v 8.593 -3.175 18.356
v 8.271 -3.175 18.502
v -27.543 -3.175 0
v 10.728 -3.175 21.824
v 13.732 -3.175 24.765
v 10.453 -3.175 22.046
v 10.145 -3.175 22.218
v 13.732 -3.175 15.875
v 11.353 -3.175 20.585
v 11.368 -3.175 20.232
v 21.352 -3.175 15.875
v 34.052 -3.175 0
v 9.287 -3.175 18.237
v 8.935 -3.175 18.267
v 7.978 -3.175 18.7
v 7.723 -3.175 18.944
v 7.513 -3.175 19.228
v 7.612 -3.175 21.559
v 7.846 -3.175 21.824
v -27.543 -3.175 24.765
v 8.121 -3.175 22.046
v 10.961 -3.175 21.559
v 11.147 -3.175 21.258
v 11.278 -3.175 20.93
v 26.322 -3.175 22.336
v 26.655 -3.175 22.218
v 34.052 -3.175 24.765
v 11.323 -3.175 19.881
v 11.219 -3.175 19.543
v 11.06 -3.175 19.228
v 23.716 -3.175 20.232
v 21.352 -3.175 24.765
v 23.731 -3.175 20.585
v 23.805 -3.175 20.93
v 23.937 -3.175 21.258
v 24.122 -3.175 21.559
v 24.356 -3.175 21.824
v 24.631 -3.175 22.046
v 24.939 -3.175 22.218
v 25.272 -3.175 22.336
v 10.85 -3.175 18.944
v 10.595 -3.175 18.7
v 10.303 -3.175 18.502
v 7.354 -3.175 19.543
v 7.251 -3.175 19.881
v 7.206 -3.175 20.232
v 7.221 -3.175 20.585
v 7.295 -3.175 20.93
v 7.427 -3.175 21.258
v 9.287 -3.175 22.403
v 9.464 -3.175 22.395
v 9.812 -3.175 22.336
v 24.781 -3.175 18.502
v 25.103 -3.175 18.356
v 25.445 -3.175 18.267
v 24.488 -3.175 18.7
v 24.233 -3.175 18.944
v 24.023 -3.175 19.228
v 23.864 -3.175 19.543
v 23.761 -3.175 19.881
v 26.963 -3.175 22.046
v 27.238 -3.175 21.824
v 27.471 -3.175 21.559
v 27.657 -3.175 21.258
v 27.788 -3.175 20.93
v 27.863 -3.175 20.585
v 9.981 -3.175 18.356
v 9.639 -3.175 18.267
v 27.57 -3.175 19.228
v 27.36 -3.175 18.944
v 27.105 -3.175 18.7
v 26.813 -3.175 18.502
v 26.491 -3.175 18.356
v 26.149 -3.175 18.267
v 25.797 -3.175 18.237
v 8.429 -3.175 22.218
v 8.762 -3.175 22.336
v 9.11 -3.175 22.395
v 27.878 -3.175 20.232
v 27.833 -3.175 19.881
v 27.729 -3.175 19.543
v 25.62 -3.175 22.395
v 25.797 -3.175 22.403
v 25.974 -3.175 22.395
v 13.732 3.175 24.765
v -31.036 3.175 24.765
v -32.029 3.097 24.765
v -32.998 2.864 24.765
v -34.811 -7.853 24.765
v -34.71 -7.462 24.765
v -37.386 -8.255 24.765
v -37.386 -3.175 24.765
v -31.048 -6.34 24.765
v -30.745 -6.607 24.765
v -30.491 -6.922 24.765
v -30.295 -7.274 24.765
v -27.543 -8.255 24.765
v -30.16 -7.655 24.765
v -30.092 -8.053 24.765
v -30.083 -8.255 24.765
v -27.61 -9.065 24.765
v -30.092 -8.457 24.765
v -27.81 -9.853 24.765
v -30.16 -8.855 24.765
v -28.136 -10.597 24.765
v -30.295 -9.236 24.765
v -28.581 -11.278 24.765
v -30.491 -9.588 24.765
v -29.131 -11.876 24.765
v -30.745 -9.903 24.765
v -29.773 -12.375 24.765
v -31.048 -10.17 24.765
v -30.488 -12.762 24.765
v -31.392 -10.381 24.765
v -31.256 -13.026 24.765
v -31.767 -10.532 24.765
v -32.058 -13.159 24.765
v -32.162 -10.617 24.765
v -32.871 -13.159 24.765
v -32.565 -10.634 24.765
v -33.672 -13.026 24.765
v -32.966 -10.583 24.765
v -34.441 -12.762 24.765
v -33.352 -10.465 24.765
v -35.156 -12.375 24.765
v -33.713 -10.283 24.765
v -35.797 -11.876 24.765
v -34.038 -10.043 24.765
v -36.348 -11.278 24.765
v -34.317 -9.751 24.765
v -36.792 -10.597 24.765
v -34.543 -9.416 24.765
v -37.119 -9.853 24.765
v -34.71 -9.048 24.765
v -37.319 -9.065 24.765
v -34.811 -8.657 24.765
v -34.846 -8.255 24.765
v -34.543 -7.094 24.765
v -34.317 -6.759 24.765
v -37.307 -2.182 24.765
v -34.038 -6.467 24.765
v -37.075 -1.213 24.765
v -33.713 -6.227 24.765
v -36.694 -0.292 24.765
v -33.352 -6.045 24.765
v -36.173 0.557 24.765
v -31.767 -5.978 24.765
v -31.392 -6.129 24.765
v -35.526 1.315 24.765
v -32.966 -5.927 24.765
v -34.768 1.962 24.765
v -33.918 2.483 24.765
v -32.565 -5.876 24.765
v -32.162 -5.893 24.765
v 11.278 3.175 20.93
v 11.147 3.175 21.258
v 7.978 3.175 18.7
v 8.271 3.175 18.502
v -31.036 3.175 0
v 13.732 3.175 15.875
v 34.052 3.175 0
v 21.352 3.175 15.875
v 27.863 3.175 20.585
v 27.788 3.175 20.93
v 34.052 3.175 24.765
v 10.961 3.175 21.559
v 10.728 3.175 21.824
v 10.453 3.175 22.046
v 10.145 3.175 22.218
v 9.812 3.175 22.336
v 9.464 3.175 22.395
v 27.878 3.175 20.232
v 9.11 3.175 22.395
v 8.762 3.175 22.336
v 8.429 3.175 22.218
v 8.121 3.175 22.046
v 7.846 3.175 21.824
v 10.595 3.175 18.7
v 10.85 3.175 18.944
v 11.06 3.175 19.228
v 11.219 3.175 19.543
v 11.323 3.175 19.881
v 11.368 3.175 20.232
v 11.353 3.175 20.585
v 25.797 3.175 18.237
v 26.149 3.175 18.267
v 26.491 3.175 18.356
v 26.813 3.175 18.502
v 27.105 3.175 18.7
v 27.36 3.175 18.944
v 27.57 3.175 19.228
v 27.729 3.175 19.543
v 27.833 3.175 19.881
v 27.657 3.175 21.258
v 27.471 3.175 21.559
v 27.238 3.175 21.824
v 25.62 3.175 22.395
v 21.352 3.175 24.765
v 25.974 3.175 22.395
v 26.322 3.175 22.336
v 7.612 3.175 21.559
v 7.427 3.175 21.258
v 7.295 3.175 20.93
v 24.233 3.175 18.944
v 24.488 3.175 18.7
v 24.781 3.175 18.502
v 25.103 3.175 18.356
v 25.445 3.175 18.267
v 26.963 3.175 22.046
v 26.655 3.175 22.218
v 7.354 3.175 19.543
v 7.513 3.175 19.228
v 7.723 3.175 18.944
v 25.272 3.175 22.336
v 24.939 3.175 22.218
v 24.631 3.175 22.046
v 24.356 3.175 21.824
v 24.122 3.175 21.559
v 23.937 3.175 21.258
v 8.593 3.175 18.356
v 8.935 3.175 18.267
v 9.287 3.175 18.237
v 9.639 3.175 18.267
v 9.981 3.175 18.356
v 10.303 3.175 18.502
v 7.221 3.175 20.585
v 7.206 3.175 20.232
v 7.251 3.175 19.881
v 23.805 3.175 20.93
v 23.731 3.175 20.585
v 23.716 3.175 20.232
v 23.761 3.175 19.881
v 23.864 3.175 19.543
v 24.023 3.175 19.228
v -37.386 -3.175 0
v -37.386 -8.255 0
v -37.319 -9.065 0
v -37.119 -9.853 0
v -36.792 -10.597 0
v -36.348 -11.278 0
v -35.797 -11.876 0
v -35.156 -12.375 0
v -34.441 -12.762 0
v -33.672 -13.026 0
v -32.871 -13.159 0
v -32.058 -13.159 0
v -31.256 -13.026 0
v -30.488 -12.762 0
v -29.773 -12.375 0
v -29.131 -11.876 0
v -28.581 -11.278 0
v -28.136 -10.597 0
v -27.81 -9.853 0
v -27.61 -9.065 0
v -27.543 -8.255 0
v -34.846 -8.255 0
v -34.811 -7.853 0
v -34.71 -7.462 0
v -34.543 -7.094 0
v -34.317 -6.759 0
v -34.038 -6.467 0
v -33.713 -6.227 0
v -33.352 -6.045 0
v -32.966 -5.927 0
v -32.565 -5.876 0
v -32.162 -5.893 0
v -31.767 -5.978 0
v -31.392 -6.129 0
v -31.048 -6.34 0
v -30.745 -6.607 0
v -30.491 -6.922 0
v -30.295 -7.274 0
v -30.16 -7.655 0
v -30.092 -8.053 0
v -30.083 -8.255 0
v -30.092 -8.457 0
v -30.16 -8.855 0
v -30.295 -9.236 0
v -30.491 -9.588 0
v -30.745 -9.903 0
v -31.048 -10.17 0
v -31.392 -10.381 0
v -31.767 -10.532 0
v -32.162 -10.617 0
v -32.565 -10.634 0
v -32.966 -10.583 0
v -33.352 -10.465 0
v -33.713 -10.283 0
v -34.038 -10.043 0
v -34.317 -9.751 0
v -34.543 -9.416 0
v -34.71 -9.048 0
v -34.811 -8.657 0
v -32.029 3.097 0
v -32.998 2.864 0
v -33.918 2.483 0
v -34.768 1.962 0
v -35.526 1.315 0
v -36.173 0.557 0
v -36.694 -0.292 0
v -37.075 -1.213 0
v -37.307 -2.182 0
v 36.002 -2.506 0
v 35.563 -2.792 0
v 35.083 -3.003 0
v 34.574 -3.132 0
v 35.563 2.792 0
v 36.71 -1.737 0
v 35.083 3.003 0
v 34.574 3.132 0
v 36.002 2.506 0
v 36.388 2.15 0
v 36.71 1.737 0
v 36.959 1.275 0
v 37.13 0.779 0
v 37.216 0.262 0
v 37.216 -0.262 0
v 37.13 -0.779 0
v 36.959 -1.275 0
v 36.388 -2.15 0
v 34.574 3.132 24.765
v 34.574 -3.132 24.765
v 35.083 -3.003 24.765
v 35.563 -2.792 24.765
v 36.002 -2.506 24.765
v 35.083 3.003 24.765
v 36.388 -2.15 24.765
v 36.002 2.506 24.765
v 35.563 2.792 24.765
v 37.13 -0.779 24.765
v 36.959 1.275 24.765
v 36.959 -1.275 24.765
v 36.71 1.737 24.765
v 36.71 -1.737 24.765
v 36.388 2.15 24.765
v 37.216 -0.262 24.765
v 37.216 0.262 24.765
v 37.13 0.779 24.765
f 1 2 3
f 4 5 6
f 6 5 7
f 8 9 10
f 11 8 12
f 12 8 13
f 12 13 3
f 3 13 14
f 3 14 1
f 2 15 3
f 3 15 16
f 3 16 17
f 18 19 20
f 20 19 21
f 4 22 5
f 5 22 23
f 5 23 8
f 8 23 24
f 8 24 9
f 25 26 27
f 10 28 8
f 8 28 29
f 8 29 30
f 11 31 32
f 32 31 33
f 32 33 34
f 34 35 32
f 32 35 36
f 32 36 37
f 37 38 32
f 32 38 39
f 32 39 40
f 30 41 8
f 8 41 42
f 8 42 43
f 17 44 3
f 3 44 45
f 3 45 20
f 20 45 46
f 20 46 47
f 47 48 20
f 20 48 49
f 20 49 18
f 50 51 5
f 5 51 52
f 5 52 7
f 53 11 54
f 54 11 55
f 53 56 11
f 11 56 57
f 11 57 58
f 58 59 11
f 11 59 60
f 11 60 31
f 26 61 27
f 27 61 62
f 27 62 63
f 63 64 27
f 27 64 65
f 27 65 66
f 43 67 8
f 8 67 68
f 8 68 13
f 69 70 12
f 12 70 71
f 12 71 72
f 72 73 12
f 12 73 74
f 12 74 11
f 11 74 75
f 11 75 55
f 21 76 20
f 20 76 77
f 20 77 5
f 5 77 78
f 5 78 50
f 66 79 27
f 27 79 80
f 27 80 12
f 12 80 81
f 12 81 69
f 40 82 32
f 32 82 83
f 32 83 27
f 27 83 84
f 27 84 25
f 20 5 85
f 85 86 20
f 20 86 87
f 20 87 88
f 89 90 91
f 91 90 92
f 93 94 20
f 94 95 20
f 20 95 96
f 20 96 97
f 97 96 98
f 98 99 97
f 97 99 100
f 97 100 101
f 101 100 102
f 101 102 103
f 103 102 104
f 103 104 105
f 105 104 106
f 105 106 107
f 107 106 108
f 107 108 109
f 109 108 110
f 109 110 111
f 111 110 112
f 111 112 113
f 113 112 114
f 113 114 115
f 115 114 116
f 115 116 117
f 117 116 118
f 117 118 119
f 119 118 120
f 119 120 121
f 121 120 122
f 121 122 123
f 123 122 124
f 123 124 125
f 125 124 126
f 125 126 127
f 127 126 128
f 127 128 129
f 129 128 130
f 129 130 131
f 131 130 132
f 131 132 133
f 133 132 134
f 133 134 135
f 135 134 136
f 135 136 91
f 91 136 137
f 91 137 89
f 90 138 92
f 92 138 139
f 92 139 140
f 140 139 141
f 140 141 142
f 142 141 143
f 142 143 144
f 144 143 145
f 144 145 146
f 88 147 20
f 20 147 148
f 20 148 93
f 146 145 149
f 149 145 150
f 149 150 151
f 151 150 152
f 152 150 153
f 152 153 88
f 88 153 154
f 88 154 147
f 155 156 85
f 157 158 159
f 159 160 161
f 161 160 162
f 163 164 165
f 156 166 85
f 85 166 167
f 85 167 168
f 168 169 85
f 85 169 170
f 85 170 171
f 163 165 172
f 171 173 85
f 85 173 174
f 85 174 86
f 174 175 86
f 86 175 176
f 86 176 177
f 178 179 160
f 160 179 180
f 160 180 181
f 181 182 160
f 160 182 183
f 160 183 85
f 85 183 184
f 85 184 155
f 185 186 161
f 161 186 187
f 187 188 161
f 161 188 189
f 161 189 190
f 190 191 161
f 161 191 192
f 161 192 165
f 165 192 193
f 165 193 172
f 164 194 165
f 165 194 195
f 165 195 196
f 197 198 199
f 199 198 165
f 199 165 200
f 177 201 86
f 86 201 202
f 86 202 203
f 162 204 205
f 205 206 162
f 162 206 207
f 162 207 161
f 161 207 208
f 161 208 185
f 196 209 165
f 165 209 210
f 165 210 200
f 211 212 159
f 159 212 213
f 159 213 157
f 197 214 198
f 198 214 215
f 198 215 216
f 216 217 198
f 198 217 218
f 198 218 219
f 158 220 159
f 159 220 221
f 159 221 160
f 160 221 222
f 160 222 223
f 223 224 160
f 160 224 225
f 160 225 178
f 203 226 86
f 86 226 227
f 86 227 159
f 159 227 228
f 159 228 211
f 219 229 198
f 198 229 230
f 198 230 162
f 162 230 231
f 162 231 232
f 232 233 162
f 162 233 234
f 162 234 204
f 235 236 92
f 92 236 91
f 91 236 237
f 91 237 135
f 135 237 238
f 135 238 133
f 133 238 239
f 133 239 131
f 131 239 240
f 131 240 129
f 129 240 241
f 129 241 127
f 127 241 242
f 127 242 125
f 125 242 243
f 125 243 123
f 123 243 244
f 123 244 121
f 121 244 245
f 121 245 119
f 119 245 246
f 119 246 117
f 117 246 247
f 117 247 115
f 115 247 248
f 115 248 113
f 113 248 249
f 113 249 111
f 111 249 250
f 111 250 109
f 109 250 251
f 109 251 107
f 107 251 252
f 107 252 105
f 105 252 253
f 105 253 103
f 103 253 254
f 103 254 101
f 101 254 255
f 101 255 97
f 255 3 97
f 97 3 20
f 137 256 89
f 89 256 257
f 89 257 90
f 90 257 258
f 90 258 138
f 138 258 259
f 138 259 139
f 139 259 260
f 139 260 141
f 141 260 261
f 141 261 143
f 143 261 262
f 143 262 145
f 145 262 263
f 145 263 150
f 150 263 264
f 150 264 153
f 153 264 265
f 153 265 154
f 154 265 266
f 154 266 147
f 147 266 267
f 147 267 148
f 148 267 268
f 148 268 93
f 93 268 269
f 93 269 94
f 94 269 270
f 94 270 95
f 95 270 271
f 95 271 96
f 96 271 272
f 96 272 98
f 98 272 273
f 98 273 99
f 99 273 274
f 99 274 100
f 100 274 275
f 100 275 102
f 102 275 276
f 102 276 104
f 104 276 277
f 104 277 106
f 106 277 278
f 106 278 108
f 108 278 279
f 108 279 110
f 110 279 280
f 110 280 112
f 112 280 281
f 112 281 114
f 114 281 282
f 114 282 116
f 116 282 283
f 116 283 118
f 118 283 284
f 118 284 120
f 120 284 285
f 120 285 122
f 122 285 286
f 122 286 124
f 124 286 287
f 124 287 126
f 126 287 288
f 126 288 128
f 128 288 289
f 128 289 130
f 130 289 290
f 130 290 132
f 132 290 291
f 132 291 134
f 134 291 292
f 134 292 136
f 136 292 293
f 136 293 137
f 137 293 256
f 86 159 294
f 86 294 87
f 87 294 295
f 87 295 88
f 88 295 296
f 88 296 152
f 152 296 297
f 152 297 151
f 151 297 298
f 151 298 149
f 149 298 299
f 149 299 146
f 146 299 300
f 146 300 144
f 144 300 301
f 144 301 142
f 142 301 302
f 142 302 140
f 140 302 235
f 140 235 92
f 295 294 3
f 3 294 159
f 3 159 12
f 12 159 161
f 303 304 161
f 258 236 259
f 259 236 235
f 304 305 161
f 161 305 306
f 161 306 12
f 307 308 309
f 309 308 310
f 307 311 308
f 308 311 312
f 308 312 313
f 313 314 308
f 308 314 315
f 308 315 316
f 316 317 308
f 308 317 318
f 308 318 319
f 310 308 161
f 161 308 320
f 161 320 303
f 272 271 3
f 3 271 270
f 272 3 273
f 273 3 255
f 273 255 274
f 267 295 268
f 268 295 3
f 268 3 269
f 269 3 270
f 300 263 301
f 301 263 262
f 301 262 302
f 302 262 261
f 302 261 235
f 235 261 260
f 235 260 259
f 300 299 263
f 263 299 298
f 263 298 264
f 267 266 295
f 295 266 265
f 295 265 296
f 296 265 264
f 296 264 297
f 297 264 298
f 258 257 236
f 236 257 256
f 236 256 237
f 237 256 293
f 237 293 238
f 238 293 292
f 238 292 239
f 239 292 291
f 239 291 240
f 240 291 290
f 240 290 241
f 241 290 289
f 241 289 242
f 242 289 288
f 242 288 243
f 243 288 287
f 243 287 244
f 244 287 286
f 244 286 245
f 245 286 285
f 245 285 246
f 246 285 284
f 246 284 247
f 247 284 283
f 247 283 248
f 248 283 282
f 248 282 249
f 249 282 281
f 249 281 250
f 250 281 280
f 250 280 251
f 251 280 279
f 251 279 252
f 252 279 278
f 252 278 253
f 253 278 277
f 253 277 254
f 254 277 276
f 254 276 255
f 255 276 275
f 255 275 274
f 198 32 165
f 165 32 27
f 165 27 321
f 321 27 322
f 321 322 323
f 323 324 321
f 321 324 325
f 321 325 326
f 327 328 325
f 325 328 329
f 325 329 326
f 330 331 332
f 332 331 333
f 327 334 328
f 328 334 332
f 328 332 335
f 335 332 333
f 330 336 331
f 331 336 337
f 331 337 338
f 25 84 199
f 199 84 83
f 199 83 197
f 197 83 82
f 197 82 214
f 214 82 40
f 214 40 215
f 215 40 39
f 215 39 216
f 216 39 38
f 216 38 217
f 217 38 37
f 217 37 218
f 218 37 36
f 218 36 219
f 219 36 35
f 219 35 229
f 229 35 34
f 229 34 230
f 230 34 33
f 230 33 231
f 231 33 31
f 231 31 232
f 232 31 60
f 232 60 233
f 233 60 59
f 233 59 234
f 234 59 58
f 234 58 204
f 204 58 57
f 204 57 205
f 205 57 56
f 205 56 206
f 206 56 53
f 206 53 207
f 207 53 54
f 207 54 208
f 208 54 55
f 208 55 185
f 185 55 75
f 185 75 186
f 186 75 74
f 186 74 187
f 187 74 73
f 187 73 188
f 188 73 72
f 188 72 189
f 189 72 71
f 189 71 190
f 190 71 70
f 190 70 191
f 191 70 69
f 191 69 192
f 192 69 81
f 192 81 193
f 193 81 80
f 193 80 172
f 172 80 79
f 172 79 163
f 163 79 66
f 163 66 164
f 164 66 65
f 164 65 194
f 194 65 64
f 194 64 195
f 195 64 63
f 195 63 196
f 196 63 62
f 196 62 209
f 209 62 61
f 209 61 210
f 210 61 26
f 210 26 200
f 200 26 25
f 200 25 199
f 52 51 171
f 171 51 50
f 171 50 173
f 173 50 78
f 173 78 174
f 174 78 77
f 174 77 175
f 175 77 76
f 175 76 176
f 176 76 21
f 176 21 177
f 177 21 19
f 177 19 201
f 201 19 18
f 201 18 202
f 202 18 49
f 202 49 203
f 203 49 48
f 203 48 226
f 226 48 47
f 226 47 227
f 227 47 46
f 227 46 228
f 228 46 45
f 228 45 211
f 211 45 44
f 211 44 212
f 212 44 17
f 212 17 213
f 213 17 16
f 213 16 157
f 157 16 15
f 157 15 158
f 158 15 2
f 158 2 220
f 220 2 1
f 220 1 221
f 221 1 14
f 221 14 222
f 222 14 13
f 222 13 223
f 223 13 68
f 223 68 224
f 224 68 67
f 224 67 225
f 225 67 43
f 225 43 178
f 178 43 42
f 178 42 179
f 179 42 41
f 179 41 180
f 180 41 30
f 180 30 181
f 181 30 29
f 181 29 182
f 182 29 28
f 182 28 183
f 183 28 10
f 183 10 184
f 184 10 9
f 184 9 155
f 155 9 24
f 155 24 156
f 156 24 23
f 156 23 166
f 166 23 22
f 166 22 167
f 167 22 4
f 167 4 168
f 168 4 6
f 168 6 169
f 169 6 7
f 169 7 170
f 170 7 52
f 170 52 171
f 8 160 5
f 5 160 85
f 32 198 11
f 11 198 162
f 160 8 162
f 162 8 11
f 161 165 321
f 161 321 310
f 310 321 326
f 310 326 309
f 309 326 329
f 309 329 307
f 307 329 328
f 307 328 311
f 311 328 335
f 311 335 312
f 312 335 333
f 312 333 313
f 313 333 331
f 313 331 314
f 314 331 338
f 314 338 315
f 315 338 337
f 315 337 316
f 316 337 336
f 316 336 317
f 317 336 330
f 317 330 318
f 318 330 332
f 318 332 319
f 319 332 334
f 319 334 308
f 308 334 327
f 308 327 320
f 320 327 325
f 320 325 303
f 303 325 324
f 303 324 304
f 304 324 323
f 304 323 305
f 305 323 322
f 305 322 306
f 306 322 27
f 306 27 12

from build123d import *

# Parameters (mm, degrees)
SKETCH1_R                = 2.38125
BOSS_EXTRUDE1_DEPTH      = 38.1
FILLET1_R                = 6.35
SKETCH3_W                = 38.1
SKETCH3_H                = 6.35
BOSS_EXTRUDE2_DEPTH      = 12.7
SKETCH2_W                = 7.62
SKETCH2_H                = 8.89
CUT_EXTRUDE7_DEPTH       = 66.019560197
BOSS_EXTRUDE5_DEPTH      = 22.225
BOSS_EXTRUDE5_DEPTH_BACK = 9.525
SKETCH10_W               = 7.62
SKETCH10_H               = 8.89
CUT_EXTRUDE1_DEPTH       = 62.376176621
CUT_EXTRUDE1_DEPTH_BACK  = 62.376176621
SKETCH5_R                = 1.905
SKETCH6_W                = 8.89
SKETCH6_H                = 8.89
BOSS_EXTRUDE4_DEPTH      = 3.175
CUT_EXTRUDE2_DEPTH       = 71.485759779
CUT_EXTRUDE2_DEPTH_BACK  = 71.485759779
SKETCH7_R                = 2.0828
CUT_EXTRUDE8_DEPTH       = 13.335
SKETCH11_W               = 7.62
SKETCH11_H               = 8.89
CUT_EXTRUDE9_DEPTH       = 68.896996404
SKETCH12_W               = 8.89
SKETCH12_H               = 8.89
CUT_EXTRUDE10_DEPTH      = 3.175
CUT_EXTRUDE11_DEPTH      = 58.406346519


with BuildPart() as part:
    # Sketch1 → Boss-Extrude1 (new body)
    with BuildSketch(Plane.XY):
        with BuildLine():
            Line((-37.385625, -8.255), (-37.385625, -3.175))
            Line((-37.385625, -3.175), (-37.385625, 3.175))
            Line((-37.385625, 3.175), (37.385625, 3.175))
            Line((37.385625, 3.175), (37.385625, -3.175))
            Line((37.385625, -3.175), (-27.543125, -3.175))
            Line((-27.543125, -3.175), (-27.543125, -8.255))
            ThreePointArc((-27.543125, -8.255), (-32.464375, -13.17625), (-37.385625, -8.255))
        make_face()
        with Locations(Location((-32.464375, -8.255, 0), (0, 0, 180))):
            Circle(SKETCH1_R, mode=Mode.SUBTRACT)
    extrude(amount=BOSS_EXTRUDE1_DEPTH)

    # Fillet1
    fillet1_edges = [part.edges().sort_by_distance(p)[0] for p in [
        (-37.385625, 3.175, 19.05),
    ]]
    fillet(fillet1_edges, radius=FILLET1_R)

    # Sketch3 → Boss-Extrude2 (add)
    with BuildSketch(Plane(origin=(37.385625, 0, 0), x_dir=(0, 0, -1), z_dir=(1, 0, 0))):
        with Locations((-19.05, 0)):
            Rectangle(SKETCH3_W, SKETCH3_H)
    extrude(amount=BOSS_EXTRUDE2_DEPTH)

    # Sketch2 → Cut-Extrude7 (cut, through all)
    with BuildSketch(Plane(origin=(0, 3.175, 0), x_dir=(1, 0, 0), z_dir=(0, 1, 0))):
        with Locations((17.541875, -20.32)):
            Rectangle(SKETCH2_W, SKETCH2_H)
    extrude(amount=-CUT_EXTRUDE7_DEPTH, mode=Mode.SUBTRACT)

    # Sketch10 → Boss-Extrude5 (add, two sides: drawn at the far end of the back side and taken through both)
    with BuildSketch(Plane(origin=(0, 3.175, 0), x_dir=(1, 0, 0), z_dir=(0, 1, 0)).offset(-BOSS_EXTRUDE5_DEPTH_BACK)):
        with Locations((17.541875, -20.32)):
            Rectangle(SKETCH10_W, SKETCH10_H)
    extrude(amount=BOSS_EXTRUDE5_DEPTH + BOSS_EXTRUDE5_DEPTH_BACK)

    # Sketch5 → Cut-Extrude1 (cut, two sides: drawn at the far end of the back side and taken through both)
    with BuildSketch(Plane.XY.offset(24.765).offset(-CUT_EXTRUDE1_DEPTH_BACK)):
        with Locations((17.541875, 5.715)):
            Circle(SKETCH5_R)
        with Locations((17.541875, 23.1775)):
            Circle(SKETCH5_R)
    extrude(amount=CUT_EXTRUDE1_DEPTH + CUT_EXTRUDE1_DEPTH_BACK, mode=Mode.SUBTRACT)

    # Sketch6 → Boss-Extrude4 (add)
    with BuildSketch(Plane(origin=(0, -3.175, 0), x_dir=(1, 0, 0), z_dir=(0, 1, 0))):
        with Locations((9.286875, -20.32)):
            Rectangle(SKETCH6_W, SKETCH6_H)
        with Locations((25.796875, -20.32)):
            Rectangle(SKETCH6_W, SKETCH6_H)
    extrude(amount=-BOSS_EXTRUDE4_DEPTH)

    # Sketch7 → Cut-Extrude2 (cut, two sides: drawn at the far end of the back side and taken through both)
    with BuildSketch(Plane(origin=(0, -6.35, 0), x_dir=(-1, 0, 0), z_dir=(0, -1, 0)).offset(-CUT_EXTRUDE2_DEPTH_BACK)):
        with Locations(Location((-9.286875, -20.32, 0), (0, 0, 90))):
            Circle(SKETCH7_R)
        with Locations(Location((-25.796875, -20.32, 0), (0, 0, 90))):
            Circle(SKETCH7_R)
    extrude(amount=CUT_EXTRUDE2_DEPTH + CUT_EXTRUDE2_DEPTH_BACK, mode=Mode.SUBTRACT)

    # Sketch9 → Cut-Extrude8 (cut)
    with BuildSketch(Plane.XY.offset(38.1)):
        with BuildLine():
            Line((50.085625, 3.175), (50.085625, -3.175))
            Line((50.085625, -3.175), (-27.543125, -3.175))
            Line((-27.543125, -3.175), (-27.543125, -8.255))
            ThreePointArc((-27.543125, -8.255), (-32.464375, -13.17625), (-37.385625, -8.255))
            Line((-37.385625, -8.255), (-37.385625, -3.175))
            ThreePointArc((-37.385625, -3.175), (-35.525753061, 1.315128061), (-31.035625, 3.175))
            Line((-31.035625, 3.175), (50.085625, 3.175))
        make_face()
    extrude(amount=-CUT_EXTRUDE8_DEPTH, mode=Mode.SUBTRACT)

    # Sketch11 → Cut-Extrude9 (cut, through all)
    with BuildSketch(Plane(origin=(0, 25.4, 0), x_dir=(1, 0, 0), z_dir=(0, 1, 0))):
        with Locations((17.541875, -20.32)):
            Rectangle(SKETCH11_W, SKETCH11_H)
    extrude(amount=-CUT_EXTRUDE9_DEPTH, mode=Mode.SUBTRACT)

    # Sketch12 → Cut-Extrude10 (cut)
    with BuildSketch(Plane.XZ.offset(6.35)):
        with Locations((9.286875, 20.32)):
            Rectangle(SKETCH12_W, SKETCH12_H)
        with Locations((25.796875, 20.32)):
            Rectangle(SKETCH12_W, SKETCH12_H)
    extrude(amount=-CUT_EXTRUDE10_DEPTH, mode=Mode.SUBTRACT)

    # Sketch13 → Cut-Extrude11 (cut, through all)
    with BuildSketch(Plane.XY.offset(24.765)):
        with BuildLine():
            Line((34.051875, 3.175), (50.085625, 3.175))
            Line((50.085625, 3.175), (50.085625, -3.175))
            Line((50.085625, -3.175), (34.051875, -3.175))
            ThreePointArc((34.051875, -3.175), (37.226875, 0), (34.051875, 3.175))
        make_face()
    extrude(amount=-CUT_EXTRUDE11_DEPTH, mode=Mode.SUBTRACT)


solid = part.part
